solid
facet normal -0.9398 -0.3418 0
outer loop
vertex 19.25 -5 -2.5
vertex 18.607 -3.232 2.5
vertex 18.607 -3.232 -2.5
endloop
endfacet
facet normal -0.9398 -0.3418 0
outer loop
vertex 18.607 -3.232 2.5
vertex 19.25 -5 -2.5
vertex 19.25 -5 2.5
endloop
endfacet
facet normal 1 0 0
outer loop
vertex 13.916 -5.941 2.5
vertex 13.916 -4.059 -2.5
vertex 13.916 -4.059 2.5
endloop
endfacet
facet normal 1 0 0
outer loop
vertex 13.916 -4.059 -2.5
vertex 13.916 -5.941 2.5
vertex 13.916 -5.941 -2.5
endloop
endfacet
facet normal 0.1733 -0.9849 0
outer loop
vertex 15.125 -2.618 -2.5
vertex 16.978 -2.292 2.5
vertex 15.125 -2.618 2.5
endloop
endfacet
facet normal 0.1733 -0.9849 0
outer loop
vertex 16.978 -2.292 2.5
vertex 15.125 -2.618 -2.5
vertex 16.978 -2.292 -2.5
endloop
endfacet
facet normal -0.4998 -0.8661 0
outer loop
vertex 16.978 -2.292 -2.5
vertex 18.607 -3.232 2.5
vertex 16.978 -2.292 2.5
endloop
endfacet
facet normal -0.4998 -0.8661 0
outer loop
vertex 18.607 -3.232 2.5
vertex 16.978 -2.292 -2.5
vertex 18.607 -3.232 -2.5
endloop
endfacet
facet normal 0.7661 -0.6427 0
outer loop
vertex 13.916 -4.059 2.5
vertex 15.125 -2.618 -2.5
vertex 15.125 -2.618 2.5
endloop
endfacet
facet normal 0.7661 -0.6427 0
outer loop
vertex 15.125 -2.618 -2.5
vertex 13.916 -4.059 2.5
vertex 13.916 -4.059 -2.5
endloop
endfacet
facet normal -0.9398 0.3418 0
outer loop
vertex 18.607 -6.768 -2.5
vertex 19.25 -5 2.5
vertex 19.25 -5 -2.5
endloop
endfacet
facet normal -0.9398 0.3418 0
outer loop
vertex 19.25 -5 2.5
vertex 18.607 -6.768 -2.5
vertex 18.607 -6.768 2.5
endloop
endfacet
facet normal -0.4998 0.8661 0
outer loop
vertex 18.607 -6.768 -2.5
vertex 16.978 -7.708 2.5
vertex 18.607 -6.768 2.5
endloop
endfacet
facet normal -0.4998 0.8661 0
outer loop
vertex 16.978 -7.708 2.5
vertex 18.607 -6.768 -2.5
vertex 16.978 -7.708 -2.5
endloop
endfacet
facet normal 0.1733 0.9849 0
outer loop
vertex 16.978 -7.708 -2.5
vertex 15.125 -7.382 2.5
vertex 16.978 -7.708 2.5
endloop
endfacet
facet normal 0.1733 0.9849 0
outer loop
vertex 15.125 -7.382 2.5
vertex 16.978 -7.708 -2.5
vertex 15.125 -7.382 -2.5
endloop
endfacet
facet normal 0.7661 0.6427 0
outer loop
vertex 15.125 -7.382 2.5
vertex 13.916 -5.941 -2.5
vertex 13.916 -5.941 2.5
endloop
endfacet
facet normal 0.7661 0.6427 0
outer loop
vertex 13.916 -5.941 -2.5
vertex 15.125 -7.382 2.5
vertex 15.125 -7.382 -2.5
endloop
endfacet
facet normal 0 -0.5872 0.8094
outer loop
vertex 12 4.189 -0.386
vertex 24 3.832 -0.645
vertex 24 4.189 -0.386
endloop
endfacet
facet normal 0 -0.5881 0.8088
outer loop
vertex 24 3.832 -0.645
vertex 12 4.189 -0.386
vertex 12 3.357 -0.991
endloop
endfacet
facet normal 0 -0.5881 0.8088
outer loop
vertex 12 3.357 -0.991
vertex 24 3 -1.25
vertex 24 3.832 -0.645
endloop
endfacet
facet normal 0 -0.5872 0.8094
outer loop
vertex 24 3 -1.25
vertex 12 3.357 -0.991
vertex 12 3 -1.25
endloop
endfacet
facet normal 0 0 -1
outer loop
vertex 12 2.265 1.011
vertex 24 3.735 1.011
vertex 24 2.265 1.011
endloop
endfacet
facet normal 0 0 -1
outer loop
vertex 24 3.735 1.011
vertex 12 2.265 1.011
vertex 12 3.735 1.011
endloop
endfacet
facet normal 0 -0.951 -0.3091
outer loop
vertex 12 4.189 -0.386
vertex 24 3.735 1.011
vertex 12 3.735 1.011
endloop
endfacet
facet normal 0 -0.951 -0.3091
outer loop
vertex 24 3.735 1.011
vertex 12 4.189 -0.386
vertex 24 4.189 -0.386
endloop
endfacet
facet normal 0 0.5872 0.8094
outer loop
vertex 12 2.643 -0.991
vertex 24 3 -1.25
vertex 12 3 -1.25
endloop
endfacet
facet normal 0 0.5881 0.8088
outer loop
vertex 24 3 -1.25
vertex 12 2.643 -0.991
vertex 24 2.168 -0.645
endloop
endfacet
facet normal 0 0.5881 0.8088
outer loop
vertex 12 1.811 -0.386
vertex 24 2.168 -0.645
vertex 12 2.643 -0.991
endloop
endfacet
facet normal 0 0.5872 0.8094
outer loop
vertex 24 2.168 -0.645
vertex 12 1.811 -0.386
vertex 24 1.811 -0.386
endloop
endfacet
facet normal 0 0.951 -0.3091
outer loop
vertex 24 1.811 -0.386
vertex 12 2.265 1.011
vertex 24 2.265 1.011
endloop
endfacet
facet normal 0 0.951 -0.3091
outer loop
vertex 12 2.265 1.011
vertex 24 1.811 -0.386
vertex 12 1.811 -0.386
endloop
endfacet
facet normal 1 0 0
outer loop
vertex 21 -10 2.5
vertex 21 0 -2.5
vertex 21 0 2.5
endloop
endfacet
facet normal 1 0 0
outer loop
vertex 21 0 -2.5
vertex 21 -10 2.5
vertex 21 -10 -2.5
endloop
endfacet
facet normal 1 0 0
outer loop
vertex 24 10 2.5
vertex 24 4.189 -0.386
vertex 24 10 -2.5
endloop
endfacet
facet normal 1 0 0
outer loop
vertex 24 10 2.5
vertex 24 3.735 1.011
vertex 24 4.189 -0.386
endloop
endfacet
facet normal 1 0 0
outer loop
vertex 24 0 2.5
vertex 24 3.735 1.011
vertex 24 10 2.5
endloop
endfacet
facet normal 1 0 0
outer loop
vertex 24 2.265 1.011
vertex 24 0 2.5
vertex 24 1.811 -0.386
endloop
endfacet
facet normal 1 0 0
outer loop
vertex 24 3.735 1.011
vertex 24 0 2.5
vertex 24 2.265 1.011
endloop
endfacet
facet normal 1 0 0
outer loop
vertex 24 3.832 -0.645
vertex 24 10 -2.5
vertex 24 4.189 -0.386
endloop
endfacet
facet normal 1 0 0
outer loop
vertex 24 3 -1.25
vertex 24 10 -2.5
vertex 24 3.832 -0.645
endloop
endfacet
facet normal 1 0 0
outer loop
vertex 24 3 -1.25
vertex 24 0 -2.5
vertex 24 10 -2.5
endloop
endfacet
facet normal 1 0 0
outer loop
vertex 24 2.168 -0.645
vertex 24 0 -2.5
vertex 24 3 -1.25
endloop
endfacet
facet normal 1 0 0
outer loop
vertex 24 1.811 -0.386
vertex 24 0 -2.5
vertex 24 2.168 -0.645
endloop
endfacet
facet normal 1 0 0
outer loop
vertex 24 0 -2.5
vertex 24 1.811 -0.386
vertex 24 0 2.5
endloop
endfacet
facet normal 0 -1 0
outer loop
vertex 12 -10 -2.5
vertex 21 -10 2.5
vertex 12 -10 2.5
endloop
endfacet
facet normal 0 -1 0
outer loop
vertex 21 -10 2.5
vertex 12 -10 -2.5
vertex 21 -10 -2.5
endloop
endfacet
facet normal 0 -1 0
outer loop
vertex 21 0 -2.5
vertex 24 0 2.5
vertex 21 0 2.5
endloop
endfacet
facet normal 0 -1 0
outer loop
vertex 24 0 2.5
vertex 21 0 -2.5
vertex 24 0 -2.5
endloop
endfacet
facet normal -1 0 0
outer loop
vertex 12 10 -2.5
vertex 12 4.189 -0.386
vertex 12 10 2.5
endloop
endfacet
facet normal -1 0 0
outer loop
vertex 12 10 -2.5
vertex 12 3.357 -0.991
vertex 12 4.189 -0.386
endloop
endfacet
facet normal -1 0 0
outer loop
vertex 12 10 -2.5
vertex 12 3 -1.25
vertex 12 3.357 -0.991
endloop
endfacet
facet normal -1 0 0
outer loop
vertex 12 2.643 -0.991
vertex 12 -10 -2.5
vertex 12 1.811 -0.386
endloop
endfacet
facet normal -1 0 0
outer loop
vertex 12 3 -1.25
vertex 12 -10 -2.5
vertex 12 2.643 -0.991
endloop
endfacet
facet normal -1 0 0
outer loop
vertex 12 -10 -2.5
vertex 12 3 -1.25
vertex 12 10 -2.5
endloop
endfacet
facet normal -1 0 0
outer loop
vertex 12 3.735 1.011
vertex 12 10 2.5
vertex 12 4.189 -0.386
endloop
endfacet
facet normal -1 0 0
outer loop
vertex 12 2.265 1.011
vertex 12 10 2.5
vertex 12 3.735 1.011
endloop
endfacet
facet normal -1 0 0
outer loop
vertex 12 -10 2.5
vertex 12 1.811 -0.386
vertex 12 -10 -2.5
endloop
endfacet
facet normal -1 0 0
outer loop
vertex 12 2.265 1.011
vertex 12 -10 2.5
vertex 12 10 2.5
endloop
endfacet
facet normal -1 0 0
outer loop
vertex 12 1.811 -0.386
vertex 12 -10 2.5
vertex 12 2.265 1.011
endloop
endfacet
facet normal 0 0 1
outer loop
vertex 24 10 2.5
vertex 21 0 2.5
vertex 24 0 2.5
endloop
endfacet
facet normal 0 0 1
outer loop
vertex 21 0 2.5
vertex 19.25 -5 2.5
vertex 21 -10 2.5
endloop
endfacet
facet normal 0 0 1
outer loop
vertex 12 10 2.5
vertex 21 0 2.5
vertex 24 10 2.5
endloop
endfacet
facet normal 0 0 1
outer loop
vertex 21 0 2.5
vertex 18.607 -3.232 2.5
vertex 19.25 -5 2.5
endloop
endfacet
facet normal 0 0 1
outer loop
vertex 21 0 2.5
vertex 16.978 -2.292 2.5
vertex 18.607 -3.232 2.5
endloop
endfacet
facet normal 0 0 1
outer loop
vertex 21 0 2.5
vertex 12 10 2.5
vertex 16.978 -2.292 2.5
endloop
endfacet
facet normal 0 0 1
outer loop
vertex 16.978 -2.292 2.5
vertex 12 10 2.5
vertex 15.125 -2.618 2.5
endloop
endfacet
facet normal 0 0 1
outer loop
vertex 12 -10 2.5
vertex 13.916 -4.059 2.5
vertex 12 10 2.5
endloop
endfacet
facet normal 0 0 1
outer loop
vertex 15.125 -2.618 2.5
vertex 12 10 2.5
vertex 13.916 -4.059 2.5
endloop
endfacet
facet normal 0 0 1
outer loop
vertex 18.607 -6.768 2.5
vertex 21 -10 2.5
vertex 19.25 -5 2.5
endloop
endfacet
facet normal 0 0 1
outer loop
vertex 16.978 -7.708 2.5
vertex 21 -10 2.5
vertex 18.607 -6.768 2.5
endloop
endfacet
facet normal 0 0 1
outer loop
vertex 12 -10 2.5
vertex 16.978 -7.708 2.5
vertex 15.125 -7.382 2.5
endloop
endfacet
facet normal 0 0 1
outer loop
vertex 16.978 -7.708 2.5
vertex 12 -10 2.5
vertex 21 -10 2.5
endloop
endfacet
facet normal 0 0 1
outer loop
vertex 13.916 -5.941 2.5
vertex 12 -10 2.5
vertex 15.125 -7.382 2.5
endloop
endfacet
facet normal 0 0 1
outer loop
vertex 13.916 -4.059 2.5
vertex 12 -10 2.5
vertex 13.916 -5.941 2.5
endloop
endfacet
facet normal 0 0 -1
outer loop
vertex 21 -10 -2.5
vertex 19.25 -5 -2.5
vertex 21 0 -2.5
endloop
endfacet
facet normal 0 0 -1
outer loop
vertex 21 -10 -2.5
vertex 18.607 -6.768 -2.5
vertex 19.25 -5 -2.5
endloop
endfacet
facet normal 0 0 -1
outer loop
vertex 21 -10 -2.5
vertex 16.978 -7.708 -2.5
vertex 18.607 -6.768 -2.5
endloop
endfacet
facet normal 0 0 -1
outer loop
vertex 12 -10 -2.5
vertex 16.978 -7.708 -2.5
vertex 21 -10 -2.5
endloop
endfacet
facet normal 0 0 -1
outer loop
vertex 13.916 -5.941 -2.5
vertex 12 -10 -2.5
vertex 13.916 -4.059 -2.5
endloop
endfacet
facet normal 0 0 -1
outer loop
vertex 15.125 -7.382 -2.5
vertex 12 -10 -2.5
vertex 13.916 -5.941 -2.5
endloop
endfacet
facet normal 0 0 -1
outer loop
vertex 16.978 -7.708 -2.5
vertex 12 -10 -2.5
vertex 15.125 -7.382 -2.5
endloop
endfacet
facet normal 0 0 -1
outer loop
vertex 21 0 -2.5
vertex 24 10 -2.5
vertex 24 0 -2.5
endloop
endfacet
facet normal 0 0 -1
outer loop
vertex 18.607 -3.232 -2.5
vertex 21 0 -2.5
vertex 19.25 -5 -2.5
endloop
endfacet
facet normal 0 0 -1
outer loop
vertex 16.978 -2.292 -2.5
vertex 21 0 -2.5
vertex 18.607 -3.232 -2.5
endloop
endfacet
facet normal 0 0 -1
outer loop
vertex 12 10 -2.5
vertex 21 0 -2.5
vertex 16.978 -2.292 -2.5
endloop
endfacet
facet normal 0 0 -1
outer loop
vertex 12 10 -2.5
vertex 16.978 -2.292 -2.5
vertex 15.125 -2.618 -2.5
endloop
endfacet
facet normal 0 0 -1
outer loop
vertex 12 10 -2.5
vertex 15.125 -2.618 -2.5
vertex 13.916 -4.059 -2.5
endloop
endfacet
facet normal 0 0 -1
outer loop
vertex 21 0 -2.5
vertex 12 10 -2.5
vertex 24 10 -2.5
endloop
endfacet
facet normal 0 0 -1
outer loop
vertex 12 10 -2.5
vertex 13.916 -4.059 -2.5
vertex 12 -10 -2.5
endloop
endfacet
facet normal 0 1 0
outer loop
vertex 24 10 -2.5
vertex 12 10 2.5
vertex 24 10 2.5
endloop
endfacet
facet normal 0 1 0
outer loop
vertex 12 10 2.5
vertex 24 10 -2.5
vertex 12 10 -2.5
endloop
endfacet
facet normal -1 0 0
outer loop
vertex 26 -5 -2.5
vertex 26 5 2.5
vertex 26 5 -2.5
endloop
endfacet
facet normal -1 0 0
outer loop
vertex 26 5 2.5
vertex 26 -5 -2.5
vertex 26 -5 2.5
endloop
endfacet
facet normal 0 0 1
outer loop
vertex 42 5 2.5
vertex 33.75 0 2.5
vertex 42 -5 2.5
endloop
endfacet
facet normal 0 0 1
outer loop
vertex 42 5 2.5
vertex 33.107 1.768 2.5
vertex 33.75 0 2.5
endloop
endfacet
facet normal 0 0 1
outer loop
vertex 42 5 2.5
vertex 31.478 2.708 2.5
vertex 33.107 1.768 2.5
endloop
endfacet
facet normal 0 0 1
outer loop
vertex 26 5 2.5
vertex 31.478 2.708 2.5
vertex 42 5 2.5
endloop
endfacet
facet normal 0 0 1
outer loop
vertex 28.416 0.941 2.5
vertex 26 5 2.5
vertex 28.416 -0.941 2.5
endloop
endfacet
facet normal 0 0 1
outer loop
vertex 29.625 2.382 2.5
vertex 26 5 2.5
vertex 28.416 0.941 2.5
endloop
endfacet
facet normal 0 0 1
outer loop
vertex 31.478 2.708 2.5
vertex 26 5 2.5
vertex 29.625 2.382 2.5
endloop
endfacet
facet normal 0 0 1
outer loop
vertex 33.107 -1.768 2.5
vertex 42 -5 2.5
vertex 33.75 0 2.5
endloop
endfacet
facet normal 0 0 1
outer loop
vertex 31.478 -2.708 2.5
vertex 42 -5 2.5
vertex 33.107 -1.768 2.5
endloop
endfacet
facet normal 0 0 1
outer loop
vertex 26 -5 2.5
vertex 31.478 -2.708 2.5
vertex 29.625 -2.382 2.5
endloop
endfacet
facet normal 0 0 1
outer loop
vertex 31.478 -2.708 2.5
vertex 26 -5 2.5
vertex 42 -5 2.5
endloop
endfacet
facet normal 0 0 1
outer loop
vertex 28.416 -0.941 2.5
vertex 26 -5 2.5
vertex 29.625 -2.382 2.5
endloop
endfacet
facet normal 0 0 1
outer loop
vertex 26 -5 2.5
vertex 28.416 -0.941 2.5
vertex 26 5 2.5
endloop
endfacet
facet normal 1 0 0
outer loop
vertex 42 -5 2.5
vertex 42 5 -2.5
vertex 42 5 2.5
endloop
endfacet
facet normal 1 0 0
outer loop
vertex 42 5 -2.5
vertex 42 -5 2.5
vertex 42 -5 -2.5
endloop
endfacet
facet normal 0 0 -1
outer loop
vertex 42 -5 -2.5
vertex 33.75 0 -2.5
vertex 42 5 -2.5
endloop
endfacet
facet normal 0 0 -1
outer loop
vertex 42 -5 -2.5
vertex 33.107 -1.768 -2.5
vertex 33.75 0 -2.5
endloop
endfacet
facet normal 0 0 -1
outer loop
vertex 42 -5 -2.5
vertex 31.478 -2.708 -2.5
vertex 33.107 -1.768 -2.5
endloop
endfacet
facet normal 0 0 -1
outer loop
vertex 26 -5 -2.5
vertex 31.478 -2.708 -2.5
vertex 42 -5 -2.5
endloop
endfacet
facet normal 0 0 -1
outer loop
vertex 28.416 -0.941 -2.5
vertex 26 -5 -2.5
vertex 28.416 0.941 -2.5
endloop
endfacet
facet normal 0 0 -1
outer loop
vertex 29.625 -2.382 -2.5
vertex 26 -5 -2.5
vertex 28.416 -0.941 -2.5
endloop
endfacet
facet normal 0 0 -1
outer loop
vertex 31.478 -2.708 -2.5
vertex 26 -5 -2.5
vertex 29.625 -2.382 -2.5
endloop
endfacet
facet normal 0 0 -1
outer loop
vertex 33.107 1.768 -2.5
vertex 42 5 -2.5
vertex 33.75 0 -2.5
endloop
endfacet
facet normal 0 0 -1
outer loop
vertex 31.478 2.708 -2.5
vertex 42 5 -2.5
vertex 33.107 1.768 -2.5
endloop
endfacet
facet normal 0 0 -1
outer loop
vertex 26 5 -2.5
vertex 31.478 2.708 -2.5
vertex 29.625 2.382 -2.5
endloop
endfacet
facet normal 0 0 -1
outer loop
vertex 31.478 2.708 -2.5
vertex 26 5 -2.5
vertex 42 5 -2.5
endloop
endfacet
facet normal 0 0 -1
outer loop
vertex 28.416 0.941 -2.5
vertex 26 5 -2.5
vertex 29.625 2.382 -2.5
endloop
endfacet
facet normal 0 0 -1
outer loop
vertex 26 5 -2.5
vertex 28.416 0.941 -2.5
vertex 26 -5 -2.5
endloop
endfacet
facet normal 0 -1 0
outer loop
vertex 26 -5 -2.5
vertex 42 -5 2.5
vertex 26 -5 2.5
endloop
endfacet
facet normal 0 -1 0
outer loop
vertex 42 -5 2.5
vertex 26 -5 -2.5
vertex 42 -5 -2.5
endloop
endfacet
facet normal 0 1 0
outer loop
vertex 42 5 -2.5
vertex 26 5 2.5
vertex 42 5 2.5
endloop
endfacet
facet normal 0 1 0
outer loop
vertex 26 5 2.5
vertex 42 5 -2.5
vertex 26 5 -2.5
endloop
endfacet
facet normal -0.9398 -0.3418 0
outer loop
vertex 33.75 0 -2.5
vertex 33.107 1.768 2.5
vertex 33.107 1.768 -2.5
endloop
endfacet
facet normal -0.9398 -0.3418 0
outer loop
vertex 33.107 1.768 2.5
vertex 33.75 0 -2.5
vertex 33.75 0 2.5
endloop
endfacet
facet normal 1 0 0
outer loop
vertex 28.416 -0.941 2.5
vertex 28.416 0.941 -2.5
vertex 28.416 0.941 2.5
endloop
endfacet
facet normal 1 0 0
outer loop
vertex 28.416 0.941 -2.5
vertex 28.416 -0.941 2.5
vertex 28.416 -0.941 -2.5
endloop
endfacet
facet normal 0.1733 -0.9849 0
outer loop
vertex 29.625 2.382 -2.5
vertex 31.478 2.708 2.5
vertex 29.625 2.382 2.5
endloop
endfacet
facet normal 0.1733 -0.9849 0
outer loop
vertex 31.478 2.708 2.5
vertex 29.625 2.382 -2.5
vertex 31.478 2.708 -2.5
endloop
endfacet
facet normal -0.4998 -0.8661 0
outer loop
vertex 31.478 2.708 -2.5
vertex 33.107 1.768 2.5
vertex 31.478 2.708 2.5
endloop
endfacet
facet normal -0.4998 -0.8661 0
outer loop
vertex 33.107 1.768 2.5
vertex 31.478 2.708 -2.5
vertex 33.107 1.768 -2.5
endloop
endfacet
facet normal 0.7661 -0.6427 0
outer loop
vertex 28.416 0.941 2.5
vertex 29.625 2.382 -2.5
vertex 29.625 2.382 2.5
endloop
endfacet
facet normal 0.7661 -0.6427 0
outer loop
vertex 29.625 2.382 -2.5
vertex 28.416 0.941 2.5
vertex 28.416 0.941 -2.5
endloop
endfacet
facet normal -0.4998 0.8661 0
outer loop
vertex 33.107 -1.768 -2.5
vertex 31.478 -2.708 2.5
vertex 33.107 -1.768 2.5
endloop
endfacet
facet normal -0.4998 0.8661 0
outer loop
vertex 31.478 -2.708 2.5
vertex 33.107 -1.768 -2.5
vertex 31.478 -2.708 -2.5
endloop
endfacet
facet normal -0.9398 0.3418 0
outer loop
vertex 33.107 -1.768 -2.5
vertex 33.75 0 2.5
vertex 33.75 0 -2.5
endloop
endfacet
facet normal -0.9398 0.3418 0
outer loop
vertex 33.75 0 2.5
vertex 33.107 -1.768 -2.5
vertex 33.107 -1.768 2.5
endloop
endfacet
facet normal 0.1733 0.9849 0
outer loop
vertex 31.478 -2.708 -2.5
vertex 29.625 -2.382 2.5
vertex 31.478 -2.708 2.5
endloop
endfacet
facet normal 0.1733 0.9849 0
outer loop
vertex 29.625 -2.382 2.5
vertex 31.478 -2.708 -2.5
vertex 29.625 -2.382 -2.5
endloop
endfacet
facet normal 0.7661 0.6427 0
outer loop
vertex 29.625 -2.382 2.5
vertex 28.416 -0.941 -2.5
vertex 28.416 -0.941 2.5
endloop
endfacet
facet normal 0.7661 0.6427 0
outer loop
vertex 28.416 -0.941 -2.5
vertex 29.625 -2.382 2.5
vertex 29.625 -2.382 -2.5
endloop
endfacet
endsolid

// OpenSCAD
// file: settings.scad
baseWidth = 70;
baseRadius = baseWidth / 2;
baseHeight = 3;
wheelCutDepth = 10;
wheelCutSize = 50;
motorWidth = 12;
motorHeight = 10;
motorLength = 23;
motorScrewSize = 4;

//rail
railDiameter=5.5;
railWidth=24;
railPos=28;

screwSize=4;
railSize=5;
screwSpace=2;
mountHeight=3;
railBlockLength=railSize+2*screwSpace;
screwAreaLength=screwSize+2*screwSpace;
topLength=2*railBlockLength+screwAreaLength;
mountItemSize=screwAreaLength;

servoWidth=25;
servoDepth=13;
servoOffset=6;
// main file
include <settings.scad>
use <parts-lib.scad>

sonarMount();
